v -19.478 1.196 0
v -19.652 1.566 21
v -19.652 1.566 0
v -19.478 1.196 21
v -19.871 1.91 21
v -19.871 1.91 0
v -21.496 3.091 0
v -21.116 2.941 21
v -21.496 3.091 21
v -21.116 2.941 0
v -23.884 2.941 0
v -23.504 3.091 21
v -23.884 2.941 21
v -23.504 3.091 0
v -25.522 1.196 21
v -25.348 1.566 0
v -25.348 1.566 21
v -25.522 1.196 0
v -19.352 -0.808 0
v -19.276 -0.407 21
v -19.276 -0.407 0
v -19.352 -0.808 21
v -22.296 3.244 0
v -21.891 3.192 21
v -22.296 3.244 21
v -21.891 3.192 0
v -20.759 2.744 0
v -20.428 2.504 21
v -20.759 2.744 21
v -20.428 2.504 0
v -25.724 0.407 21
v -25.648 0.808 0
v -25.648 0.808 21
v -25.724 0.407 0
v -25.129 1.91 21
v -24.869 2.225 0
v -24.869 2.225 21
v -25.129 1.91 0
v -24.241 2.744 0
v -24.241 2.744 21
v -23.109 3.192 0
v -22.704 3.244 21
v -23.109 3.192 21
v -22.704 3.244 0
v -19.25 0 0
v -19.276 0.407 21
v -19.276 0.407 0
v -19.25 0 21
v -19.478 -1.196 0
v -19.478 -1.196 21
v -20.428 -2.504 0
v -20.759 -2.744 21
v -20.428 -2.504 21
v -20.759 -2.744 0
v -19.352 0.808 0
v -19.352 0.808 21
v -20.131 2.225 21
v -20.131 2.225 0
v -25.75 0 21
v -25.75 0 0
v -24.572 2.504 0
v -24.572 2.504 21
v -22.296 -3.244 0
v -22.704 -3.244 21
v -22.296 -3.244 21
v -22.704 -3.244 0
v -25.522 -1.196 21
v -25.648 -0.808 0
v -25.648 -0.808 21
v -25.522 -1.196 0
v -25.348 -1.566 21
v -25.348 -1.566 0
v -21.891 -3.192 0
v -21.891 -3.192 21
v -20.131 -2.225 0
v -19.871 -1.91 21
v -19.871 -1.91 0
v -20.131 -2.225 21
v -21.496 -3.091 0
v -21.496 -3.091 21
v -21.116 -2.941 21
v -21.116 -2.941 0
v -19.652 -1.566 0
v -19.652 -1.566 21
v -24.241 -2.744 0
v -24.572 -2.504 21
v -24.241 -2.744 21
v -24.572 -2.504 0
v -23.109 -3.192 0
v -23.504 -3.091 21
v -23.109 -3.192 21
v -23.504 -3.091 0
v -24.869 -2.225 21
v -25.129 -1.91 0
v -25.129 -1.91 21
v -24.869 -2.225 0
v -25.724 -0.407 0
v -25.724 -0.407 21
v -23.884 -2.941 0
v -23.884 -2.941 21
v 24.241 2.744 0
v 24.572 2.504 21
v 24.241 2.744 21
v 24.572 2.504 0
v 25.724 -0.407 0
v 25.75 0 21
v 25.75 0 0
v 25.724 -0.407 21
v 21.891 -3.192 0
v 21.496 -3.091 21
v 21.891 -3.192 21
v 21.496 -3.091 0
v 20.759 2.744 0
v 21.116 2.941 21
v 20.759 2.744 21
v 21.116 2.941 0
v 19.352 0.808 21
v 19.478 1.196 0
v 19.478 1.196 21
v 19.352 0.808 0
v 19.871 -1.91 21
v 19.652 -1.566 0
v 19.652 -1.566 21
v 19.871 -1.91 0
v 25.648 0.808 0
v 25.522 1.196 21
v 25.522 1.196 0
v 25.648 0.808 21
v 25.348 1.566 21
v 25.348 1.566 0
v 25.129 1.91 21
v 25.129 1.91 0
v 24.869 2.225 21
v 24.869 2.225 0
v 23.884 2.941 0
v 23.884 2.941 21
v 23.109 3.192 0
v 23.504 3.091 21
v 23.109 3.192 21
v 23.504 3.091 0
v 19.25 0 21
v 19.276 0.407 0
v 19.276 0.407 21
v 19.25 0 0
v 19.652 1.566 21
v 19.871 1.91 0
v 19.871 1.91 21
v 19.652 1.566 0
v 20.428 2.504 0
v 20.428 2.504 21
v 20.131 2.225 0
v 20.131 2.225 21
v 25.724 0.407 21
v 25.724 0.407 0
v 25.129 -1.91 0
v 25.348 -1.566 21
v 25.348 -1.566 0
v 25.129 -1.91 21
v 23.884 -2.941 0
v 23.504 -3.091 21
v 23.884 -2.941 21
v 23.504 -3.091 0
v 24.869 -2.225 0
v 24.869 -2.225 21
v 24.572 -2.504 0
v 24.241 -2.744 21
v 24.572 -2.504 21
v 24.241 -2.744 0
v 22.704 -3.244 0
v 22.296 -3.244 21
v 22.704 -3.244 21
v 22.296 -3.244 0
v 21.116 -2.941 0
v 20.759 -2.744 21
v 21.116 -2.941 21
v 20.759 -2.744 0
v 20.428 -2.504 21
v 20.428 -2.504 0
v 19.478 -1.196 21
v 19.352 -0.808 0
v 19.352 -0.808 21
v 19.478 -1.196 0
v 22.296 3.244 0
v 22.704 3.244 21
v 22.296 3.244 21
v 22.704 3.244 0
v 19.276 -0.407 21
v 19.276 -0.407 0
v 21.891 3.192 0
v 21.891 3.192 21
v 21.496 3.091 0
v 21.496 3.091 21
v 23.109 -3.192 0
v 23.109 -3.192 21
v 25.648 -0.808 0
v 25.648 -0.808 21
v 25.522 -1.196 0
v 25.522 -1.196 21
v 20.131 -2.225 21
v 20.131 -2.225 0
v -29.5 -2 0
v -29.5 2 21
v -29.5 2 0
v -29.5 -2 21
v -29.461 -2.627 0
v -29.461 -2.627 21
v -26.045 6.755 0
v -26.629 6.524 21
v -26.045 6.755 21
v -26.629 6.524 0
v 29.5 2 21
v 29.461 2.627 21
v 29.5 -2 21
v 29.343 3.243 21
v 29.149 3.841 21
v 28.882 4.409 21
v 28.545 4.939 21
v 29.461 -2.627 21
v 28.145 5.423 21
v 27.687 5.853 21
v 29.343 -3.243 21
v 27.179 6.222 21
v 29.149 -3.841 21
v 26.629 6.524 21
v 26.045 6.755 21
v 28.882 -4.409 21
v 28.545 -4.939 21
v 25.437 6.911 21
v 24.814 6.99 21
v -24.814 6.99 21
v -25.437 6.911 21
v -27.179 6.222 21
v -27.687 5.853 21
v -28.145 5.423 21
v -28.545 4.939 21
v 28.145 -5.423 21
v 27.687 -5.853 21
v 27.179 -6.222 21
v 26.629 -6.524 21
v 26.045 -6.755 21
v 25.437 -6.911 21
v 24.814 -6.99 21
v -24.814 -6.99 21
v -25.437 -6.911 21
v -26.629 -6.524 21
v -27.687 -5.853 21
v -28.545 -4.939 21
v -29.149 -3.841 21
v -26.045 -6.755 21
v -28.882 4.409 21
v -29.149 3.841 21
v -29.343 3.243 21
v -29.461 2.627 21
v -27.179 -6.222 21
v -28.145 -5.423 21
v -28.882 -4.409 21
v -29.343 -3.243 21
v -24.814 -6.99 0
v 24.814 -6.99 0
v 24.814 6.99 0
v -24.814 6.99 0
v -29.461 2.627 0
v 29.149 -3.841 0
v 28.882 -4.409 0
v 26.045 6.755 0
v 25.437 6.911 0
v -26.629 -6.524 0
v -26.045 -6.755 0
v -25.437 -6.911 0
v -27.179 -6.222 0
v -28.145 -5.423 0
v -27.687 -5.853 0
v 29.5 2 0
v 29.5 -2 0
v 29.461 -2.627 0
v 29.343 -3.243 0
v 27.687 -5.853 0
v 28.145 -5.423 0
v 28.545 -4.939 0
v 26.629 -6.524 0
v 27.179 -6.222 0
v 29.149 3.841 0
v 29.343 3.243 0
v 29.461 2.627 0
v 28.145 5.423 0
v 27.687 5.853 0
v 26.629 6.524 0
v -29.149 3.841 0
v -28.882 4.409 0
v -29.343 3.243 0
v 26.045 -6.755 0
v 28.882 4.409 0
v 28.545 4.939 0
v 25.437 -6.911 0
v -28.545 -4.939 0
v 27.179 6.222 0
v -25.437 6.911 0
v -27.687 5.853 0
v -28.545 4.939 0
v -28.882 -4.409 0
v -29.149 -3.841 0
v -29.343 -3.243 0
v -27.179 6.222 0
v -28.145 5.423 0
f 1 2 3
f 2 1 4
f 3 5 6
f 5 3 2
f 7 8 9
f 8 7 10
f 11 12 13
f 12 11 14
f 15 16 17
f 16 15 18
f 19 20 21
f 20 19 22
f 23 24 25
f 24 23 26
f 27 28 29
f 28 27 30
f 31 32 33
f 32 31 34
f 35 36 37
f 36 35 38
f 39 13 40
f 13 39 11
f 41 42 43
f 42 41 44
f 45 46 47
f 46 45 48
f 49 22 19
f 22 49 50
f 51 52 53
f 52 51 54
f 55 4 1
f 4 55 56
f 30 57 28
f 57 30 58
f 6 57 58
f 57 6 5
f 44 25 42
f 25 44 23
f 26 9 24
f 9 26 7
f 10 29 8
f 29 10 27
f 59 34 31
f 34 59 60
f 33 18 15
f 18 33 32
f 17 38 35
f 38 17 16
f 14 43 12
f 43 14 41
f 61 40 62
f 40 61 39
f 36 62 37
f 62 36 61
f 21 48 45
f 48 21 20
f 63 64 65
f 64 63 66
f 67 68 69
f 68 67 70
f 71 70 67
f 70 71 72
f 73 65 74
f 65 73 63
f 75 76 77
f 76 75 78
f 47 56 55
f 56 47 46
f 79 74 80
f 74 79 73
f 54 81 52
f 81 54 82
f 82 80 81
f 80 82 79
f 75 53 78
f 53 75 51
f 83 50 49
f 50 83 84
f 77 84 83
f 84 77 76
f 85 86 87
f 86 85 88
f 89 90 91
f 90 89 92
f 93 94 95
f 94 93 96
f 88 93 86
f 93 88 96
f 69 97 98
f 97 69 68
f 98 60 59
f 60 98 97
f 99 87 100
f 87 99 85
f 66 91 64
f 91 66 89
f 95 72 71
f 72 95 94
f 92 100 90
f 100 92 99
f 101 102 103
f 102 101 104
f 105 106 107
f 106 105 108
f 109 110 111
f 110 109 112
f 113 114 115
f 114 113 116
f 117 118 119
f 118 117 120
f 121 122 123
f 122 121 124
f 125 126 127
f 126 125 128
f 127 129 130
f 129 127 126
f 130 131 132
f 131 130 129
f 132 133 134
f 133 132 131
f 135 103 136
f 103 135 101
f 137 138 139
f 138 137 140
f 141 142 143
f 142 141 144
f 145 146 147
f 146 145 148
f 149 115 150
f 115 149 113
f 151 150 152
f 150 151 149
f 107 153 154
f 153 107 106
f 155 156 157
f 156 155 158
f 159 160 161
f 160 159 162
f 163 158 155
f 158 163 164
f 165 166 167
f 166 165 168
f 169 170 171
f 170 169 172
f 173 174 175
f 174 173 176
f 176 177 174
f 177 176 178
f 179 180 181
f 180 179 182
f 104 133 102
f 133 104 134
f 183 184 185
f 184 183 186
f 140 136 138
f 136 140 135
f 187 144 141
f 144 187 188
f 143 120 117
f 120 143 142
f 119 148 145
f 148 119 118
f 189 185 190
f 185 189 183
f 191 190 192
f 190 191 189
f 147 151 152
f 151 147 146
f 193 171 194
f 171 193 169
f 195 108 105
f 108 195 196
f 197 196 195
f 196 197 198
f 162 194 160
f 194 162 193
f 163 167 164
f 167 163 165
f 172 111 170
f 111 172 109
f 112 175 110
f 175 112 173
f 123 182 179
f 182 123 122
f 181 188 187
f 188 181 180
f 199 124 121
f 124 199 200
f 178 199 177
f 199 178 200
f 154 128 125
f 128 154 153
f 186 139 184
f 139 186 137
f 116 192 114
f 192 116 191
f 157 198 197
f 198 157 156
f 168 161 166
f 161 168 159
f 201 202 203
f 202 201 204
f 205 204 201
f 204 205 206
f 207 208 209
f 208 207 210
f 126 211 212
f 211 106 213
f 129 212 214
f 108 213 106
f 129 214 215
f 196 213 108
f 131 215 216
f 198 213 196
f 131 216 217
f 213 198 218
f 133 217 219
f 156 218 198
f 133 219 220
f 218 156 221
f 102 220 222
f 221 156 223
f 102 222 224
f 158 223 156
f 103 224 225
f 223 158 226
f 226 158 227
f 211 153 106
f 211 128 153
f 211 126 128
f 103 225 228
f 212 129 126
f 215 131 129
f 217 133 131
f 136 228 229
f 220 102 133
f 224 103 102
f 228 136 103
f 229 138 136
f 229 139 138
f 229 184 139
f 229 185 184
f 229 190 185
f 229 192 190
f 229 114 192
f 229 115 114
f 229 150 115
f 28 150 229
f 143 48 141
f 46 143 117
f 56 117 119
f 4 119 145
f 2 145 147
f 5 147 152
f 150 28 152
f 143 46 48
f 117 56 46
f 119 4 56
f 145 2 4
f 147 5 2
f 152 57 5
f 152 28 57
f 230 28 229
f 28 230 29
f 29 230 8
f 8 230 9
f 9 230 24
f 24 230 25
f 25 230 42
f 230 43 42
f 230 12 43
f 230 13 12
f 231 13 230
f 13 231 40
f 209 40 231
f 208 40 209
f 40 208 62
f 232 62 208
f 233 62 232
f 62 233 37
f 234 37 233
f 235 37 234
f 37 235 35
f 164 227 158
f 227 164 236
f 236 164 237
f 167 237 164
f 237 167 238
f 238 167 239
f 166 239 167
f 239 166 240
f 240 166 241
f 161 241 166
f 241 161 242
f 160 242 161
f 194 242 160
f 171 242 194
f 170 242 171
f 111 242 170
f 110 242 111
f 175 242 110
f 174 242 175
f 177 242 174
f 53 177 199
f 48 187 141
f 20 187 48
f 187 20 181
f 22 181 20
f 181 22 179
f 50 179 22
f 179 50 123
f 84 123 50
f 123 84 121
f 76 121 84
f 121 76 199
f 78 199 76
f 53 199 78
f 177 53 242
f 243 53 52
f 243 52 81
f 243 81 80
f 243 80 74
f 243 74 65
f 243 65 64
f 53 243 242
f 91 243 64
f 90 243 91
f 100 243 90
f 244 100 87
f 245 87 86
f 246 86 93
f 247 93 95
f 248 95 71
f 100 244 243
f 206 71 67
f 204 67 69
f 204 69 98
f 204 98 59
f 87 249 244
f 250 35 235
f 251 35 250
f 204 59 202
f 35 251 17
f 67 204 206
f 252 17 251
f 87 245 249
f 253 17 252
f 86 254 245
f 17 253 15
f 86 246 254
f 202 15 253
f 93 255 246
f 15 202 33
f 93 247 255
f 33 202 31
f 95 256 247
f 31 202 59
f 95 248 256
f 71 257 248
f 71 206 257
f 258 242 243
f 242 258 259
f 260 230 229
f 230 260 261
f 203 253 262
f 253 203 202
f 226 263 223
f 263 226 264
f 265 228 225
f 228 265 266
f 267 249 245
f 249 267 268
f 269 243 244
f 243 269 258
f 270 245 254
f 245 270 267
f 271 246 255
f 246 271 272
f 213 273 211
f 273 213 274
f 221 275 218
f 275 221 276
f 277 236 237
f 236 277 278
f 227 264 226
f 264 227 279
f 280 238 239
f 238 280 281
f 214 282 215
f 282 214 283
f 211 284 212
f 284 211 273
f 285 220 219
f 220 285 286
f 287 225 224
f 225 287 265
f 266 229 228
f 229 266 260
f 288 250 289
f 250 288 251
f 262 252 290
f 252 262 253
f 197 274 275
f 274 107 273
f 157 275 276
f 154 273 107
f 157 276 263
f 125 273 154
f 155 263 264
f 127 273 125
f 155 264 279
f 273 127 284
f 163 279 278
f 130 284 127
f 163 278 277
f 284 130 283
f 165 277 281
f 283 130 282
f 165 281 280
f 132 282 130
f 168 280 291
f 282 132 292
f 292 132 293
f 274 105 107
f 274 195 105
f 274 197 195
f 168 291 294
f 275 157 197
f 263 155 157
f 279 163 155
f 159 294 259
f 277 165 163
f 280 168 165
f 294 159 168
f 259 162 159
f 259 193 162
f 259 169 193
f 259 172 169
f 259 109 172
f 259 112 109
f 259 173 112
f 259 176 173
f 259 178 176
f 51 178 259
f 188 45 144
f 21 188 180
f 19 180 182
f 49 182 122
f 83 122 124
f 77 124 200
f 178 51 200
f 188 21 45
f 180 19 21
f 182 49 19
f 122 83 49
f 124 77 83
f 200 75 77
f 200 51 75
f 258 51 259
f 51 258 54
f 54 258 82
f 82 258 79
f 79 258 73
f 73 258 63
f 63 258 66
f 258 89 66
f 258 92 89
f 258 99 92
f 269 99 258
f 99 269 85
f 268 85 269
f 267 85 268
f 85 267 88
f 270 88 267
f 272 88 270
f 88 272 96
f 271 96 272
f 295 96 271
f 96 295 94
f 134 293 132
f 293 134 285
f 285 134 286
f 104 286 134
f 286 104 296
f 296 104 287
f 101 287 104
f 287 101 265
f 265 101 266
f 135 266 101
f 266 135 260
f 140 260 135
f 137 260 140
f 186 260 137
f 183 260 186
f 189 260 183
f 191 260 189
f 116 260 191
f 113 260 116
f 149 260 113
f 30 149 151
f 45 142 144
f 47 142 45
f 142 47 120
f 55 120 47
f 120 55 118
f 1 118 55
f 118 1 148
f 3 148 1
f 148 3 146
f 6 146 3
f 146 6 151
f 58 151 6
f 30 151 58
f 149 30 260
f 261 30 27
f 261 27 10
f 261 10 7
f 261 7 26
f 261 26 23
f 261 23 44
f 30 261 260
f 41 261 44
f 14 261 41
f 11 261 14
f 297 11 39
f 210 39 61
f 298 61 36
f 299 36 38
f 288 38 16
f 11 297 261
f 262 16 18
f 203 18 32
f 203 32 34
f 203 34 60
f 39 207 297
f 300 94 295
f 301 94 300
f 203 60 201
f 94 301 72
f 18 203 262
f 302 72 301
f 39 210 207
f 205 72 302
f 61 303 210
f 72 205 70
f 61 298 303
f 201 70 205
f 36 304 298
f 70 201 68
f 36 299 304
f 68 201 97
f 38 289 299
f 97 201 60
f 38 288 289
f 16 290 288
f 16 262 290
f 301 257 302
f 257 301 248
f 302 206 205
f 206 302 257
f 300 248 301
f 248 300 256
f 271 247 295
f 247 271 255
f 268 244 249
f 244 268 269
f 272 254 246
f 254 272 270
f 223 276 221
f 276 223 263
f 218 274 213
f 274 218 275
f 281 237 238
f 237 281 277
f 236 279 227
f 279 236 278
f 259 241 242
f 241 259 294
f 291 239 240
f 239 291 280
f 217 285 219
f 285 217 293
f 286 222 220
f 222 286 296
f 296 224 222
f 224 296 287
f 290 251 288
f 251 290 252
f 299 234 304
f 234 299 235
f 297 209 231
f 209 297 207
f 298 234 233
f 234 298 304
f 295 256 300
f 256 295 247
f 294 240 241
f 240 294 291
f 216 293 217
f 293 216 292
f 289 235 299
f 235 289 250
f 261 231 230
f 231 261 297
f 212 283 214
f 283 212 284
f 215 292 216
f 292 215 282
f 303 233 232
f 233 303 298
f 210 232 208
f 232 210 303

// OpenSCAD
$fn = 50;


difference() {
	union() {
		hull() {
			translate(v = [-24.5000000000, 2.0000000000, 0]) {
				cylinder(h = 21, r = 5);
			}
			translate(v = [24.5000000000, 2.0000000000, 0]) {
				cylinder(h = 21, r = 5);
			}
			translate(v = [-24.5000000000, -2.0000000000, 0]) {
				cylinder(h = 21, r = 5);
			}
			translate(v = [24.5000000000, -2.0000000000, 0]) {
				cylinder(h = 21, r = 5);
			}
		}
	}
	union() {
		translate(v = [-22.5000000000, 0.0000000000, -100.0000000000]) {
			cylinder(h = 200, r = 3.2500000000);
		}
		translate(v = [-22.5000000000, 0.0000000000, -100.0000000000]) {
			cylinder(h = 200, r = 3.2500000000);
		}
		translate(v = [22.5000000000, 0.0000000000, -100.0000000000]) {
			cylinder(h = 200, r = 3.2500000000);
		}
		translate(v = [22.5000000000, 0.0000000000, -100.0000000000]) {
			cylinder(h = 200, r = 3.2500000000);
		}
	}
}
